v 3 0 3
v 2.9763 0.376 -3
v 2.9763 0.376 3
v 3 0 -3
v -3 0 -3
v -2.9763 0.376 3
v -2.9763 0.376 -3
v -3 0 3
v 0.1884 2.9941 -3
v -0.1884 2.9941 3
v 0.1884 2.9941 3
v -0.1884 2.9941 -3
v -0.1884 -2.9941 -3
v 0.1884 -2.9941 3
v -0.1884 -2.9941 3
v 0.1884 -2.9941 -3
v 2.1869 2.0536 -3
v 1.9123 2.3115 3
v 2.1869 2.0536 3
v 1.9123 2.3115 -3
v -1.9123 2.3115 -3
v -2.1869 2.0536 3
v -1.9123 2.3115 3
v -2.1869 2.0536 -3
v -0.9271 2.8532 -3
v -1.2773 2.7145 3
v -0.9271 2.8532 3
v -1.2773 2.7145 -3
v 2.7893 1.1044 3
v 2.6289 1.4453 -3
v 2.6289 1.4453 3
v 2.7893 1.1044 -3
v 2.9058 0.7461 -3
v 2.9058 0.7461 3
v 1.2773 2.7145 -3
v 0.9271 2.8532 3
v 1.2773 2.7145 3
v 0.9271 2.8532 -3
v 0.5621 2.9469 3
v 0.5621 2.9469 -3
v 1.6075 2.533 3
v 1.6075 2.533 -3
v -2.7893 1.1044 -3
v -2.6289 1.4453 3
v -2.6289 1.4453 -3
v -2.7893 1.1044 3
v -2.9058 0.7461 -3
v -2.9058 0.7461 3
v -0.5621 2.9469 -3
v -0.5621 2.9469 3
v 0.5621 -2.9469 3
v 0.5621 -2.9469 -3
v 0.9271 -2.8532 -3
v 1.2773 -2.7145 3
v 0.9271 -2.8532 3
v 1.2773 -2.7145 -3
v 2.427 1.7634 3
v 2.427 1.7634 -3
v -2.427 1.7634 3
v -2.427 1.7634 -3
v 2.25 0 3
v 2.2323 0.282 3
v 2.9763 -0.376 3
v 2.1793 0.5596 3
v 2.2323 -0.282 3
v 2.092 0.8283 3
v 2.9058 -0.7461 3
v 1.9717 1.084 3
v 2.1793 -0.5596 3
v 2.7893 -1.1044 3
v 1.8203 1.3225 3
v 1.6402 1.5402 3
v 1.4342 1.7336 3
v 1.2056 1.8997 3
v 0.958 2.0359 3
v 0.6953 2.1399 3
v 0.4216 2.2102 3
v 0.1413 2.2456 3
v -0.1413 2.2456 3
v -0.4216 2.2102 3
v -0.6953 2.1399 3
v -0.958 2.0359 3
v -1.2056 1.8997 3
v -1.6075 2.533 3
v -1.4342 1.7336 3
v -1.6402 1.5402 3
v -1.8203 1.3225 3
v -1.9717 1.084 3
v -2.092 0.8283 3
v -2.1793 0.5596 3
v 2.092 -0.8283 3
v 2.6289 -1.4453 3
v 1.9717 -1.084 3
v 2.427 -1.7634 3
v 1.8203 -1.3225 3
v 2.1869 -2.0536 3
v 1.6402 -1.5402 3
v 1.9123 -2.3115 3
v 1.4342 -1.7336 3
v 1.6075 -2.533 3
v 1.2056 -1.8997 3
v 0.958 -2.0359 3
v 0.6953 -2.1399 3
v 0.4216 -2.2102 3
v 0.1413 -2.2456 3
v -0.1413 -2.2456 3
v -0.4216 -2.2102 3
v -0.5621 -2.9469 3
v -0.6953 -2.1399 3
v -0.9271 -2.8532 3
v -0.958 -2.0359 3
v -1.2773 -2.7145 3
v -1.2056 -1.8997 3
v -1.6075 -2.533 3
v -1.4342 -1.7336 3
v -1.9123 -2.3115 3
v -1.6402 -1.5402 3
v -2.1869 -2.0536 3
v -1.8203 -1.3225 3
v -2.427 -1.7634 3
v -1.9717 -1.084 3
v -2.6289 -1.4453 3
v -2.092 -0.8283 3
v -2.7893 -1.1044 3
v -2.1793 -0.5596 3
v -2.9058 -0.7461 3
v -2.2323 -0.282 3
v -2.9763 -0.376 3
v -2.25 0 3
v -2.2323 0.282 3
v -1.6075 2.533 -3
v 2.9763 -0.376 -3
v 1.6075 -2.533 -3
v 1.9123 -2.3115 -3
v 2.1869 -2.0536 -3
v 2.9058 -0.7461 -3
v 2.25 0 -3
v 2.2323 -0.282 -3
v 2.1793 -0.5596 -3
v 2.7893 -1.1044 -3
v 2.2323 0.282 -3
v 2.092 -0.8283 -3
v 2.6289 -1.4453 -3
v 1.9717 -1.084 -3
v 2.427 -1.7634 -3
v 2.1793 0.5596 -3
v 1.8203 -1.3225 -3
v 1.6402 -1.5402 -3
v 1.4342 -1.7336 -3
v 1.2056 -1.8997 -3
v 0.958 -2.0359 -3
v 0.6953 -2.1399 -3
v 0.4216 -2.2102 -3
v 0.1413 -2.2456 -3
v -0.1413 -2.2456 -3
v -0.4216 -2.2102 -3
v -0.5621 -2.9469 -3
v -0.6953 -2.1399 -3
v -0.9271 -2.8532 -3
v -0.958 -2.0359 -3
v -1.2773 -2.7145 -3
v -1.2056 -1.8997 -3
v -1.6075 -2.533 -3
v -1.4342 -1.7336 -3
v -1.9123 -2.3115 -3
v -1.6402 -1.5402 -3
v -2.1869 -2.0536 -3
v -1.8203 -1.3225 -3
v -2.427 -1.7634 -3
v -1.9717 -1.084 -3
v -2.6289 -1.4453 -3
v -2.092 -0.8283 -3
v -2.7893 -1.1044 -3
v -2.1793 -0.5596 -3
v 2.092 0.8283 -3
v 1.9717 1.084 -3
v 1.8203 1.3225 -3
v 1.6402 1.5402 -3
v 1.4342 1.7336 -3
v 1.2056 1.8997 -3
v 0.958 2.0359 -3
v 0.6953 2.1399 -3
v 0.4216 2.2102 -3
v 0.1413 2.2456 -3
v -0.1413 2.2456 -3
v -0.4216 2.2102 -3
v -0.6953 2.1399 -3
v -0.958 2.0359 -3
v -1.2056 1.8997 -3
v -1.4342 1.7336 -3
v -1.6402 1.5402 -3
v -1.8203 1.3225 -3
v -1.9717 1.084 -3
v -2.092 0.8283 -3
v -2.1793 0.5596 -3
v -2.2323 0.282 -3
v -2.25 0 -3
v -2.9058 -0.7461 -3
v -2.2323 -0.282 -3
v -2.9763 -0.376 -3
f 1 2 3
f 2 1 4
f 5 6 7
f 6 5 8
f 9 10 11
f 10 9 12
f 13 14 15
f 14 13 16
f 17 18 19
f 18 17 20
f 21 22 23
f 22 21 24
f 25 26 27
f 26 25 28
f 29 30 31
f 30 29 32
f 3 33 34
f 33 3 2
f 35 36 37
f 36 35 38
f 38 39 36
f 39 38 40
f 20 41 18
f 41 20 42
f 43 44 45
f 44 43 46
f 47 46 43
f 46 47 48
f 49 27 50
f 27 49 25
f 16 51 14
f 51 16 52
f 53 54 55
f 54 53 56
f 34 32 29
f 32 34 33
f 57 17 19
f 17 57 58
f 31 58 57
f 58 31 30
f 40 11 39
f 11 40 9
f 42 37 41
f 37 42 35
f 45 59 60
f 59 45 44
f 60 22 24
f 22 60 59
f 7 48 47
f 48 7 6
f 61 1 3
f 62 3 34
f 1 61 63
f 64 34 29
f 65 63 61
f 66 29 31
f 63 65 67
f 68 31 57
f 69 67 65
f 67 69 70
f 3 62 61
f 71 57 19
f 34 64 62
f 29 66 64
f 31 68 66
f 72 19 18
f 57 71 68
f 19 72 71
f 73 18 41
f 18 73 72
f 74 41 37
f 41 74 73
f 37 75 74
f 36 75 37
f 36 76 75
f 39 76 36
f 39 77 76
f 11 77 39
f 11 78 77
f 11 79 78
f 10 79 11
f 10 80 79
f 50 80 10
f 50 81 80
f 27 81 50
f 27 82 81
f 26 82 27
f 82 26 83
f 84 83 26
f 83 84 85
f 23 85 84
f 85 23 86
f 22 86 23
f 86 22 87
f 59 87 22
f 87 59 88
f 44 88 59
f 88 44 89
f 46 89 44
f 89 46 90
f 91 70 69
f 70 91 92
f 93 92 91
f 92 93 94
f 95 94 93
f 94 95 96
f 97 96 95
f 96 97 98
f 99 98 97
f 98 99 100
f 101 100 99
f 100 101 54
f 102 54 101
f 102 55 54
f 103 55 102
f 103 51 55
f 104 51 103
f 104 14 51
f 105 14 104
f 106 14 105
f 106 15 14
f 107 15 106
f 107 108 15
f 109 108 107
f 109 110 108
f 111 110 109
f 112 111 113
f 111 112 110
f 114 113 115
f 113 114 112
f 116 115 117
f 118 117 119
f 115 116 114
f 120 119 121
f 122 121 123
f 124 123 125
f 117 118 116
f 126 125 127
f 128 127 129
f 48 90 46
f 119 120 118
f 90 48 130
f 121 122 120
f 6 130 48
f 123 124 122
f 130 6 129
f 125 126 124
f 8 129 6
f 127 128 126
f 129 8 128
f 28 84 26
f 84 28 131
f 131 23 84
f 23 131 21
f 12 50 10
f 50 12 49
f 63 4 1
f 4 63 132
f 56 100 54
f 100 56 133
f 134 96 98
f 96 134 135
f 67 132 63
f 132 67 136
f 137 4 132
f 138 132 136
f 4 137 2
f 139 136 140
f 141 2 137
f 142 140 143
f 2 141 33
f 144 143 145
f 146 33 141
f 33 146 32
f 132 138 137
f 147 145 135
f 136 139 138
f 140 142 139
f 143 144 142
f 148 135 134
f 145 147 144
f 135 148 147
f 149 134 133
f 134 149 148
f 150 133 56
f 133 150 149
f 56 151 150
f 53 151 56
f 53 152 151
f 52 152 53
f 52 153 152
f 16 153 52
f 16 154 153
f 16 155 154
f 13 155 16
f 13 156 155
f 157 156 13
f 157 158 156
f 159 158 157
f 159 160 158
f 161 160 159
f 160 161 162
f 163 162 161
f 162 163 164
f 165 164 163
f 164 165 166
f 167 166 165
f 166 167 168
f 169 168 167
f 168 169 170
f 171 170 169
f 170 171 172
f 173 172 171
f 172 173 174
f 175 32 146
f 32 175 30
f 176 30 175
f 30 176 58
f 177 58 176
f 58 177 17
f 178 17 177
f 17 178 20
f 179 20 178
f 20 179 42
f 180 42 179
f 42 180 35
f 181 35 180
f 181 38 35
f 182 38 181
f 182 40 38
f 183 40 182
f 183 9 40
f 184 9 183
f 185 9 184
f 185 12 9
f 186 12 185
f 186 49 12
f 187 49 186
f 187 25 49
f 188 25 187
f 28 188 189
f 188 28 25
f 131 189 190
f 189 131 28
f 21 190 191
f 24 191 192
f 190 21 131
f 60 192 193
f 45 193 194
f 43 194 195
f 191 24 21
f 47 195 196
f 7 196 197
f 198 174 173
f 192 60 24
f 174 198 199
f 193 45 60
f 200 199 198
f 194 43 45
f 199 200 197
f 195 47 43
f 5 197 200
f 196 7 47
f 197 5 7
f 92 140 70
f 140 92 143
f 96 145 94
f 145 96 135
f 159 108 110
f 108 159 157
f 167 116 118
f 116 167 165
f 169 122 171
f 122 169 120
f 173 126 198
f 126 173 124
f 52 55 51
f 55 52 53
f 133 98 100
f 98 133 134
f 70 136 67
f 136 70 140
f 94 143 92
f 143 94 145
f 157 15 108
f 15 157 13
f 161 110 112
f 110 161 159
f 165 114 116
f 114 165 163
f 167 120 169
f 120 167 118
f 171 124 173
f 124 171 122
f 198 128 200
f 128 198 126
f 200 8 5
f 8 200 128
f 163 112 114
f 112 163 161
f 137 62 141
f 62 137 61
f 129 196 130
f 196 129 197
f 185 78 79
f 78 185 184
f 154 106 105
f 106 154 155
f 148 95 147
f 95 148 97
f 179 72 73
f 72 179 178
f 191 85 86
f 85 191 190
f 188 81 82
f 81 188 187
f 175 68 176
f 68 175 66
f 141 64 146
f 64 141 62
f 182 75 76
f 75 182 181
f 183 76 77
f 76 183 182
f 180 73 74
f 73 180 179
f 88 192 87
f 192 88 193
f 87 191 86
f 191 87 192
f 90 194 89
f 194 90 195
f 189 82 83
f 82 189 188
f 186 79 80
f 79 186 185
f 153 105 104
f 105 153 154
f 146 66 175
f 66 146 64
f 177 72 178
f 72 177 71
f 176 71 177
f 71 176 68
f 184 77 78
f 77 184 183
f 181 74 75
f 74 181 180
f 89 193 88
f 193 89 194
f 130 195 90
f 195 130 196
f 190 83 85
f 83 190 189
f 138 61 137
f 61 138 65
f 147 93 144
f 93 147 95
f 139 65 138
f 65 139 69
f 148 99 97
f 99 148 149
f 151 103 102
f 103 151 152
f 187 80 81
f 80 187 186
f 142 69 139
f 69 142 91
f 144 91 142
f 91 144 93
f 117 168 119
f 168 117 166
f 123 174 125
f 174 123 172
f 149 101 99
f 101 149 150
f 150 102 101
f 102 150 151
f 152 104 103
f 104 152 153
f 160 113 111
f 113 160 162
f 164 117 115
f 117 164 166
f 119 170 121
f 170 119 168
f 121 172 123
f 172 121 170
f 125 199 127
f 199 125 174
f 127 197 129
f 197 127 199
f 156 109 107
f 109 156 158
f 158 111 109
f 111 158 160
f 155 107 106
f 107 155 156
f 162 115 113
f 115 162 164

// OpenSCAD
$fn = 50;


difference() {
	union() {
		translate(v = [0, 0, -3.0000000000]) {
			cylinder(h = 6, r = 3.0000000000);
		}
	}
	union() {
		translate(v = [0, 0, -100.0000000000]) {
			cylinder(h = 200, r = 2.2500000000);
		}
	}
}
